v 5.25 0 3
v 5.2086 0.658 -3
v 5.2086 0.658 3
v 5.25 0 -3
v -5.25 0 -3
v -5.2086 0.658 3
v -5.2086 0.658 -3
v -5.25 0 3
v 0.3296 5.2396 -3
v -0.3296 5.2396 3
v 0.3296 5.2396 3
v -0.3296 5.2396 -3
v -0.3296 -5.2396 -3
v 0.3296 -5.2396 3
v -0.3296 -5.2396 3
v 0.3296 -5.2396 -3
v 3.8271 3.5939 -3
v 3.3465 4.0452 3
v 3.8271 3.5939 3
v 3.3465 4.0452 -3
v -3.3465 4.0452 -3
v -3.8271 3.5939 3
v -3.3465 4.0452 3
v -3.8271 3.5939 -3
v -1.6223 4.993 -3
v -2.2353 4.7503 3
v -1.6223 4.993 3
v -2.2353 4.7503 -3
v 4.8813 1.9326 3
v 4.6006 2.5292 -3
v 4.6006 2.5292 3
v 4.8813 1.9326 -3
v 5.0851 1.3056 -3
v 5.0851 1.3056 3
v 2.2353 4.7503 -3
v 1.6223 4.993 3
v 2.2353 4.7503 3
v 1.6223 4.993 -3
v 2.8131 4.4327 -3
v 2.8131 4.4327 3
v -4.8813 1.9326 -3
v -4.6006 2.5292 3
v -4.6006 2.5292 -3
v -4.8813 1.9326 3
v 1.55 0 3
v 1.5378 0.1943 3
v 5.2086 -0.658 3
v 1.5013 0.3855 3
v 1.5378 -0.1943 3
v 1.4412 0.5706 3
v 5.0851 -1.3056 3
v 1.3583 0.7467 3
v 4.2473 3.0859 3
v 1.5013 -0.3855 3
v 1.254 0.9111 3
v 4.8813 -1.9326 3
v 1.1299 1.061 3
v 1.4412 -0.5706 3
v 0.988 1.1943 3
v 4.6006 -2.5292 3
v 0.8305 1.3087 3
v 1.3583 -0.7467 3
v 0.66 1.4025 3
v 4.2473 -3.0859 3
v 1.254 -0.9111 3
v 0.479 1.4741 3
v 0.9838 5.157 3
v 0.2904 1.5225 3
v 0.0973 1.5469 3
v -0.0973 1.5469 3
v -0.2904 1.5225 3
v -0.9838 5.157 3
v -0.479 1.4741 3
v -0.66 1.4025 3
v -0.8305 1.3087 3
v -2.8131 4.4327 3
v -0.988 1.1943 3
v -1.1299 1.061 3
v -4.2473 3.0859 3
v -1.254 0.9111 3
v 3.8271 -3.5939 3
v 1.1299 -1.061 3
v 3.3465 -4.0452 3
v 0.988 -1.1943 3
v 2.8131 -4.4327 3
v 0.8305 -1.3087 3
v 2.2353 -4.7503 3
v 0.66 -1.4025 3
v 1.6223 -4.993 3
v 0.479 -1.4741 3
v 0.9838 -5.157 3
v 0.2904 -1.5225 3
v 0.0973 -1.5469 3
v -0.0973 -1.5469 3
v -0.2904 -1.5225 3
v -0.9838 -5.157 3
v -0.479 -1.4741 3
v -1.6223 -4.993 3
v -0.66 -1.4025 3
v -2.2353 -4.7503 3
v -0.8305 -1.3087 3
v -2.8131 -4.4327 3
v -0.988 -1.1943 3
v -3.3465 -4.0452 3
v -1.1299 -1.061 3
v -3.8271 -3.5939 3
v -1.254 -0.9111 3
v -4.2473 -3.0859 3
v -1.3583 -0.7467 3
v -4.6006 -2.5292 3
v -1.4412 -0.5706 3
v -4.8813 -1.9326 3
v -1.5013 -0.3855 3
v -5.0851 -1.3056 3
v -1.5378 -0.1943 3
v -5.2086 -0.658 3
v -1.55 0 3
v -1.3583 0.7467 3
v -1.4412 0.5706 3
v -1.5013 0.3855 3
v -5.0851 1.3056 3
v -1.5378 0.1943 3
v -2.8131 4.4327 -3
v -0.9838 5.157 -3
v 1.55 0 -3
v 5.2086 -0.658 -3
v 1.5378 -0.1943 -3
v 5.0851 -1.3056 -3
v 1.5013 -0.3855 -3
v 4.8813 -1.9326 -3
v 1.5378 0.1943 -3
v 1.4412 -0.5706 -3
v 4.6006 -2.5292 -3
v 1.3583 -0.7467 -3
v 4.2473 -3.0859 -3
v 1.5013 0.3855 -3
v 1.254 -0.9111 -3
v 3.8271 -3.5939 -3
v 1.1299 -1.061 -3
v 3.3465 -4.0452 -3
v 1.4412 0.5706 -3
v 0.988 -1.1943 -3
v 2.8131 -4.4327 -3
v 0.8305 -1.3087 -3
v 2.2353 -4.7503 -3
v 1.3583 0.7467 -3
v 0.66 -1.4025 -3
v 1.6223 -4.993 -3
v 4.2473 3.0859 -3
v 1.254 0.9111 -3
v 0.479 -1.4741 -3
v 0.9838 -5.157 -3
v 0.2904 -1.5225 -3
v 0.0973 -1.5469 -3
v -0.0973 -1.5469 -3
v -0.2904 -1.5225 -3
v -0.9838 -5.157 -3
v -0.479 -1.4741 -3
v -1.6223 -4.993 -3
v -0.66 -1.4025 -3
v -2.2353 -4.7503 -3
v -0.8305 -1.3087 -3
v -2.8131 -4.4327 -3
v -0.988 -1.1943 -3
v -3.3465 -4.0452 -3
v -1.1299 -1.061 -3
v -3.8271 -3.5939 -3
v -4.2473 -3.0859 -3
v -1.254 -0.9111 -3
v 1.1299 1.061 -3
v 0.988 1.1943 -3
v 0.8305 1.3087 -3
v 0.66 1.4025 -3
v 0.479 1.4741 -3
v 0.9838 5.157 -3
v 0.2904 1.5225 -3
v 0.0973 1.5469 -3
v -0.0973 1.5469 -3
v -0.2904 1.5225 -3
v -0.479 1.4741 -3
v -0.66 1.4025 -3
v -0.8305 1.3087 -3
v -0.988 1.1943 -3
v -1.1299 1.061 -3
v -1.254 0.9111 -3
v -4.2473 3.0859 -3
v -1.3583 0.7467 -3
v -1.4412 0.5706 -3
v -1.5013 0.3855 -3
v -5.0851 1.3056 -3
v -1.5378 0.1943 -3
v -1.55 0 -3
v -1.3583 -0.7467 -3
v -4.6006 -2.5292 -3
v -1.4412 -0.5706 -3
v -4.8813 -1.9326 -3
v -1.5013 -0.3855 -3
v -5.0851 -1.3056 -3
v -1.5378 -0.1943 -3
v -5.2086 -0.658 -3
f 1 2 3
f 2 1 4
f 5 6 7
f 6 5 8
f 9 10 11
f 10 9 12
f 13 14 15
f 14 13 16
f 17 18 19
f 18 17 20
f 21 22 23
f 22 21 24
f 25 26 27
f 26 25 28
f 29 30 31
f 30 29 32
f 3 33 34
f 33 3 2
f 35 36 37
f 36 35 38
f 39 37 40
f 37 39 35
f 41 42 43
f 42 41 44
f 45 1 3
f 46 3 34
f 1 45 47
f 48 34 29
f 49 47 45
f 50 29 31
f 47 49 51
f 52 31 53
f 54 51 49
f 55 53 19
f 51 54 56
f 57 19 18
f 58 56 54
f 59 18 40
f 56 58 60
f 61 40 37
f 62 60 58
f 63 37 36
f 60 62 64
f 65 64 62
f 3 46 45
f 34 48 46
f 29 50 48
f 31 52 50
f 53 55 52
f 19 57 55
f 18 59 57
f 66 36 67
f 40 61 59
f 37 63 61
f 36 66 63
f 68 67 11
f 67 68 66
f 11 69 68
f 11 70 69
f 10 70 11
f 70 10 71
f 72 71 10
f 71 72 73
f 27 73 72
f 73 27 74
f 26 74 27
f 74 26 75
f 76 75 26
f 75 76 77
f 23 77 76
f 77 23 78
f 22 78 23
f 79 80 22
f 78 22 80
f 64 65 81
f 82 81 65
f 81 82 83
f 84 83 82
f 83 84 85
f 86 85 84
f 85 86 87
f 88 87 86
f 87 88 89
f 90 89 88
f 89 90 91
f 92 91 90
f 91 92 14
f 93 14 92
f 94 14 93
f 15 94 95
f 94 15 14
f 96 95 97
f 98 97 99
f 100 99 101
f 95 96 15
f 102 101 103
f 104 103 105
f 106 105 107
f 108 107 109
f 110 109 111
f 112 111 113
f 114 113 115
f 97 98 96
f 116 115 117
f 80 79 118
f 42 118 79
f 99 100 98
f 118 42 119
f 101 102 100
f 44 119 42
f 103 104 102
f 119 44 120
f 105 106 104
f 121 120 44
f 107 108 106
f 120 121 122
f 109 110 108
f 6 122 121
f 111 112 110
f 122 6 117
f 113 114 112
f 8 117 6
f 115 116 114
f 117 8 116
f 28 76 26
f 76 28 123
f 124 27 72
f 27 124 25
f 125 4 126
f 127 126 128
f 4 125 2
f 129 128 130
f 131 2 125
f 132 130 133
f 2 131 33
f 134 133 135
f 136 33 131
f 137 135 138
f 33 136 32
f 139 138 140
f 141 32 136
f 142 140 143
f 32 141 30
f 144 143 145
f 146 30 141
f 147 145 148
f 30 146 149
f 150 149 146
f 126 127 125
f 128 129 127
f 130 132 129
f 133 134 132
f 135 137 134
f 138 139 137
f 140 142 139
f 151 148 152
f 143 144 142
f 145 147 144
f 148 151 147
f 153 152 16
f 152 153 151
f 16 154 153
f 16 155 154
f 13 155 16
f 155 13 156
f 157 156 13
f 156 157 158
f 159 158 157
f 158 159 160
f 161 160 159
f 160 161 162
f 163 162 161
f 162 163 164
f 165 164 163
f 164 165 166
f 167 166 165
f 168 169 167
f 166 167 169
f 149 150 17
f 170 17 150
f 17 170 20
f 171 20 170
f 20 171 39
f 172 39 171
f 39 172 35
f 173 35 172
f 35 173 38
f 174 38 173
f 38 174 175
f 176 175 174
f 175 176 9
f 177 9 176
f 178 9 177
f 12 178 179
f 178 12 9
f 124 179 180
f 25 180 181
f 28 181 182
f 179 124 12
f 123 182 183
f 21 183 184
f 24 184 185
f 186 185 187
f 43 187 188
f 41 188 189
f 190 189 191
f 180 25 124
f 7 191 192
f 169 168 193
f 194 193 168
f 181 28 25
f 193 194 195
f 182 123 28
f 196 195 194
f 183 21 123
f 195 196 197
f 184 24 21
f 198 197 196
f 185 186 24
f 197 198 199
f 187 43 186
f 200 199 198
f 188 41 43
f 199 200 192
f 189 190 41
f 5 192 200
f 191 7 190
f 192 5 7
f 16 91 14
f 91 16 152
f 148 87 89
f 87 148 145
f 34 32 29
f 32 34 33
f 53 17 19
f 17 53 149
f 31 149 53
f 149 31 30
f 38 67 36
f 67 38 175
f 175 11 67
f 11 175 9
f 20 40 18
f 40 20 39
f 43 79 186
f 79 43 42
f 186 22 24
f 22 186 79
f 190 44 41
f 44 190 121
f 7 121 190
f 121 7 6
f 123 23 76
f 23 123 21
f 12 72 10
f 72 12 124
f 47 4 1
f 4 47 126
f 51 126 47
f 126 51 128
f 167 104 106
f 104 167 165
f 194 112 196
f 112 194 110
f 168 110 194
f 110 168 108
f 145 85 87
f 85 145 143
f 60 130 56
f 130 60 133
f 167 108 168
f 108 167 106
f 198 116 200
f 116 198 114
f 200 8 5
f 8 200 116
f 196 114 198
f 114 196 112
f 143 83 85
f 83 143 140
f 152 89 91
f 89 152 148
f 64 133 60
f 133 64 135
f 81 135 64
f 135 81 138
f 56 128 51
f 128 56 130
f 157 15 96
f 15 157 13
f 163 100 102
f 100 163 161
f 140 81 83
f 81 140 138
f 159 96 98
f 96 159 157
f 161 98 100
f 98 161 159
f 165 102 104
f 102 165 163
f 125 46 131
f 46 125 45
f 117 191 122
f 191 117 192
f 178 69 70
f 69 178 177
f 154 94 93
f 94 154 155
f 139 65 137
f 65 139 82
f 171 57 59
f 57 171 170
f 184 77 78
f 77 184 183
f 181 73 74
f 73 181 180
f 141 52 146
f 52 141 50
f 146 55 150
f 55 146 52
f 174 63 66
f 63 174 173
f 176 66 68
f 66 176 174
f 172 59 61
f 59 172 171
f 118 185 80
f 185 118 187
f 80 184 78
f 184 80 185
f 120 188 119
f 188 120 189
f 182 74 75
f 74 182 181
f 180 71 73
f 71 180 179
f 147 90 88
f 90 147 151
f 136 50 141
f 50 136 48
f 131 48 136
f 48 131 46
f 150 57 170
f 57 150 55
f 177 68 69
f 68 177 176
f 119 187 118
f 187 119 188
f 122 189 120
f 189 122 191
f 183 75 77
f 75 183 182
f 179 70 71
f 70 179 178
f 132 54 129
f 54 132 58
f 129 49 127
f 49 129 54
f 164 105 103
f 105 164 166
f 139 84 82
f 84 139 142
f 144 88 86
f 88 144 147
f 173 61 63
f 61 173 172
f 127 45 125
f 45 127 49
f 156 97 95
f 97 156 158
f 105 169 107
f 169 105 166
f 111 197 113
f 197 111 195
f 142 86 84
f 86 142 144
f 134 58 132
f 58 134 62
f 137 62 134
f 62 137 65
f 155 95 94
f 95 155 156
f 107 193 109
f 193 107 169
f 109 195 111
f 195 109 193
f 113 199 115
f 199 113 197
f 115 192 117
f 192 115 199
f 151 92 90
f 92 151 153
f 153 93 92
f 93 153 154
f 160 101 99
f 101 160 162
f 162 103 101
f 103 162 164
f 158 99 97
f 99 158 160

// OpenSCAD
$fn = 50;


difference() {
	union() {
		translate(v = [0, 0, -3.0000000000]) {
			cylinder(h = 6, r = 5.2500000000);
		}
	}
	union() {
		translate(v = [0, 0, -100.0000000000]) {
			cylinder(h = 200, r = 1.5500000000);
		}
	}
}
